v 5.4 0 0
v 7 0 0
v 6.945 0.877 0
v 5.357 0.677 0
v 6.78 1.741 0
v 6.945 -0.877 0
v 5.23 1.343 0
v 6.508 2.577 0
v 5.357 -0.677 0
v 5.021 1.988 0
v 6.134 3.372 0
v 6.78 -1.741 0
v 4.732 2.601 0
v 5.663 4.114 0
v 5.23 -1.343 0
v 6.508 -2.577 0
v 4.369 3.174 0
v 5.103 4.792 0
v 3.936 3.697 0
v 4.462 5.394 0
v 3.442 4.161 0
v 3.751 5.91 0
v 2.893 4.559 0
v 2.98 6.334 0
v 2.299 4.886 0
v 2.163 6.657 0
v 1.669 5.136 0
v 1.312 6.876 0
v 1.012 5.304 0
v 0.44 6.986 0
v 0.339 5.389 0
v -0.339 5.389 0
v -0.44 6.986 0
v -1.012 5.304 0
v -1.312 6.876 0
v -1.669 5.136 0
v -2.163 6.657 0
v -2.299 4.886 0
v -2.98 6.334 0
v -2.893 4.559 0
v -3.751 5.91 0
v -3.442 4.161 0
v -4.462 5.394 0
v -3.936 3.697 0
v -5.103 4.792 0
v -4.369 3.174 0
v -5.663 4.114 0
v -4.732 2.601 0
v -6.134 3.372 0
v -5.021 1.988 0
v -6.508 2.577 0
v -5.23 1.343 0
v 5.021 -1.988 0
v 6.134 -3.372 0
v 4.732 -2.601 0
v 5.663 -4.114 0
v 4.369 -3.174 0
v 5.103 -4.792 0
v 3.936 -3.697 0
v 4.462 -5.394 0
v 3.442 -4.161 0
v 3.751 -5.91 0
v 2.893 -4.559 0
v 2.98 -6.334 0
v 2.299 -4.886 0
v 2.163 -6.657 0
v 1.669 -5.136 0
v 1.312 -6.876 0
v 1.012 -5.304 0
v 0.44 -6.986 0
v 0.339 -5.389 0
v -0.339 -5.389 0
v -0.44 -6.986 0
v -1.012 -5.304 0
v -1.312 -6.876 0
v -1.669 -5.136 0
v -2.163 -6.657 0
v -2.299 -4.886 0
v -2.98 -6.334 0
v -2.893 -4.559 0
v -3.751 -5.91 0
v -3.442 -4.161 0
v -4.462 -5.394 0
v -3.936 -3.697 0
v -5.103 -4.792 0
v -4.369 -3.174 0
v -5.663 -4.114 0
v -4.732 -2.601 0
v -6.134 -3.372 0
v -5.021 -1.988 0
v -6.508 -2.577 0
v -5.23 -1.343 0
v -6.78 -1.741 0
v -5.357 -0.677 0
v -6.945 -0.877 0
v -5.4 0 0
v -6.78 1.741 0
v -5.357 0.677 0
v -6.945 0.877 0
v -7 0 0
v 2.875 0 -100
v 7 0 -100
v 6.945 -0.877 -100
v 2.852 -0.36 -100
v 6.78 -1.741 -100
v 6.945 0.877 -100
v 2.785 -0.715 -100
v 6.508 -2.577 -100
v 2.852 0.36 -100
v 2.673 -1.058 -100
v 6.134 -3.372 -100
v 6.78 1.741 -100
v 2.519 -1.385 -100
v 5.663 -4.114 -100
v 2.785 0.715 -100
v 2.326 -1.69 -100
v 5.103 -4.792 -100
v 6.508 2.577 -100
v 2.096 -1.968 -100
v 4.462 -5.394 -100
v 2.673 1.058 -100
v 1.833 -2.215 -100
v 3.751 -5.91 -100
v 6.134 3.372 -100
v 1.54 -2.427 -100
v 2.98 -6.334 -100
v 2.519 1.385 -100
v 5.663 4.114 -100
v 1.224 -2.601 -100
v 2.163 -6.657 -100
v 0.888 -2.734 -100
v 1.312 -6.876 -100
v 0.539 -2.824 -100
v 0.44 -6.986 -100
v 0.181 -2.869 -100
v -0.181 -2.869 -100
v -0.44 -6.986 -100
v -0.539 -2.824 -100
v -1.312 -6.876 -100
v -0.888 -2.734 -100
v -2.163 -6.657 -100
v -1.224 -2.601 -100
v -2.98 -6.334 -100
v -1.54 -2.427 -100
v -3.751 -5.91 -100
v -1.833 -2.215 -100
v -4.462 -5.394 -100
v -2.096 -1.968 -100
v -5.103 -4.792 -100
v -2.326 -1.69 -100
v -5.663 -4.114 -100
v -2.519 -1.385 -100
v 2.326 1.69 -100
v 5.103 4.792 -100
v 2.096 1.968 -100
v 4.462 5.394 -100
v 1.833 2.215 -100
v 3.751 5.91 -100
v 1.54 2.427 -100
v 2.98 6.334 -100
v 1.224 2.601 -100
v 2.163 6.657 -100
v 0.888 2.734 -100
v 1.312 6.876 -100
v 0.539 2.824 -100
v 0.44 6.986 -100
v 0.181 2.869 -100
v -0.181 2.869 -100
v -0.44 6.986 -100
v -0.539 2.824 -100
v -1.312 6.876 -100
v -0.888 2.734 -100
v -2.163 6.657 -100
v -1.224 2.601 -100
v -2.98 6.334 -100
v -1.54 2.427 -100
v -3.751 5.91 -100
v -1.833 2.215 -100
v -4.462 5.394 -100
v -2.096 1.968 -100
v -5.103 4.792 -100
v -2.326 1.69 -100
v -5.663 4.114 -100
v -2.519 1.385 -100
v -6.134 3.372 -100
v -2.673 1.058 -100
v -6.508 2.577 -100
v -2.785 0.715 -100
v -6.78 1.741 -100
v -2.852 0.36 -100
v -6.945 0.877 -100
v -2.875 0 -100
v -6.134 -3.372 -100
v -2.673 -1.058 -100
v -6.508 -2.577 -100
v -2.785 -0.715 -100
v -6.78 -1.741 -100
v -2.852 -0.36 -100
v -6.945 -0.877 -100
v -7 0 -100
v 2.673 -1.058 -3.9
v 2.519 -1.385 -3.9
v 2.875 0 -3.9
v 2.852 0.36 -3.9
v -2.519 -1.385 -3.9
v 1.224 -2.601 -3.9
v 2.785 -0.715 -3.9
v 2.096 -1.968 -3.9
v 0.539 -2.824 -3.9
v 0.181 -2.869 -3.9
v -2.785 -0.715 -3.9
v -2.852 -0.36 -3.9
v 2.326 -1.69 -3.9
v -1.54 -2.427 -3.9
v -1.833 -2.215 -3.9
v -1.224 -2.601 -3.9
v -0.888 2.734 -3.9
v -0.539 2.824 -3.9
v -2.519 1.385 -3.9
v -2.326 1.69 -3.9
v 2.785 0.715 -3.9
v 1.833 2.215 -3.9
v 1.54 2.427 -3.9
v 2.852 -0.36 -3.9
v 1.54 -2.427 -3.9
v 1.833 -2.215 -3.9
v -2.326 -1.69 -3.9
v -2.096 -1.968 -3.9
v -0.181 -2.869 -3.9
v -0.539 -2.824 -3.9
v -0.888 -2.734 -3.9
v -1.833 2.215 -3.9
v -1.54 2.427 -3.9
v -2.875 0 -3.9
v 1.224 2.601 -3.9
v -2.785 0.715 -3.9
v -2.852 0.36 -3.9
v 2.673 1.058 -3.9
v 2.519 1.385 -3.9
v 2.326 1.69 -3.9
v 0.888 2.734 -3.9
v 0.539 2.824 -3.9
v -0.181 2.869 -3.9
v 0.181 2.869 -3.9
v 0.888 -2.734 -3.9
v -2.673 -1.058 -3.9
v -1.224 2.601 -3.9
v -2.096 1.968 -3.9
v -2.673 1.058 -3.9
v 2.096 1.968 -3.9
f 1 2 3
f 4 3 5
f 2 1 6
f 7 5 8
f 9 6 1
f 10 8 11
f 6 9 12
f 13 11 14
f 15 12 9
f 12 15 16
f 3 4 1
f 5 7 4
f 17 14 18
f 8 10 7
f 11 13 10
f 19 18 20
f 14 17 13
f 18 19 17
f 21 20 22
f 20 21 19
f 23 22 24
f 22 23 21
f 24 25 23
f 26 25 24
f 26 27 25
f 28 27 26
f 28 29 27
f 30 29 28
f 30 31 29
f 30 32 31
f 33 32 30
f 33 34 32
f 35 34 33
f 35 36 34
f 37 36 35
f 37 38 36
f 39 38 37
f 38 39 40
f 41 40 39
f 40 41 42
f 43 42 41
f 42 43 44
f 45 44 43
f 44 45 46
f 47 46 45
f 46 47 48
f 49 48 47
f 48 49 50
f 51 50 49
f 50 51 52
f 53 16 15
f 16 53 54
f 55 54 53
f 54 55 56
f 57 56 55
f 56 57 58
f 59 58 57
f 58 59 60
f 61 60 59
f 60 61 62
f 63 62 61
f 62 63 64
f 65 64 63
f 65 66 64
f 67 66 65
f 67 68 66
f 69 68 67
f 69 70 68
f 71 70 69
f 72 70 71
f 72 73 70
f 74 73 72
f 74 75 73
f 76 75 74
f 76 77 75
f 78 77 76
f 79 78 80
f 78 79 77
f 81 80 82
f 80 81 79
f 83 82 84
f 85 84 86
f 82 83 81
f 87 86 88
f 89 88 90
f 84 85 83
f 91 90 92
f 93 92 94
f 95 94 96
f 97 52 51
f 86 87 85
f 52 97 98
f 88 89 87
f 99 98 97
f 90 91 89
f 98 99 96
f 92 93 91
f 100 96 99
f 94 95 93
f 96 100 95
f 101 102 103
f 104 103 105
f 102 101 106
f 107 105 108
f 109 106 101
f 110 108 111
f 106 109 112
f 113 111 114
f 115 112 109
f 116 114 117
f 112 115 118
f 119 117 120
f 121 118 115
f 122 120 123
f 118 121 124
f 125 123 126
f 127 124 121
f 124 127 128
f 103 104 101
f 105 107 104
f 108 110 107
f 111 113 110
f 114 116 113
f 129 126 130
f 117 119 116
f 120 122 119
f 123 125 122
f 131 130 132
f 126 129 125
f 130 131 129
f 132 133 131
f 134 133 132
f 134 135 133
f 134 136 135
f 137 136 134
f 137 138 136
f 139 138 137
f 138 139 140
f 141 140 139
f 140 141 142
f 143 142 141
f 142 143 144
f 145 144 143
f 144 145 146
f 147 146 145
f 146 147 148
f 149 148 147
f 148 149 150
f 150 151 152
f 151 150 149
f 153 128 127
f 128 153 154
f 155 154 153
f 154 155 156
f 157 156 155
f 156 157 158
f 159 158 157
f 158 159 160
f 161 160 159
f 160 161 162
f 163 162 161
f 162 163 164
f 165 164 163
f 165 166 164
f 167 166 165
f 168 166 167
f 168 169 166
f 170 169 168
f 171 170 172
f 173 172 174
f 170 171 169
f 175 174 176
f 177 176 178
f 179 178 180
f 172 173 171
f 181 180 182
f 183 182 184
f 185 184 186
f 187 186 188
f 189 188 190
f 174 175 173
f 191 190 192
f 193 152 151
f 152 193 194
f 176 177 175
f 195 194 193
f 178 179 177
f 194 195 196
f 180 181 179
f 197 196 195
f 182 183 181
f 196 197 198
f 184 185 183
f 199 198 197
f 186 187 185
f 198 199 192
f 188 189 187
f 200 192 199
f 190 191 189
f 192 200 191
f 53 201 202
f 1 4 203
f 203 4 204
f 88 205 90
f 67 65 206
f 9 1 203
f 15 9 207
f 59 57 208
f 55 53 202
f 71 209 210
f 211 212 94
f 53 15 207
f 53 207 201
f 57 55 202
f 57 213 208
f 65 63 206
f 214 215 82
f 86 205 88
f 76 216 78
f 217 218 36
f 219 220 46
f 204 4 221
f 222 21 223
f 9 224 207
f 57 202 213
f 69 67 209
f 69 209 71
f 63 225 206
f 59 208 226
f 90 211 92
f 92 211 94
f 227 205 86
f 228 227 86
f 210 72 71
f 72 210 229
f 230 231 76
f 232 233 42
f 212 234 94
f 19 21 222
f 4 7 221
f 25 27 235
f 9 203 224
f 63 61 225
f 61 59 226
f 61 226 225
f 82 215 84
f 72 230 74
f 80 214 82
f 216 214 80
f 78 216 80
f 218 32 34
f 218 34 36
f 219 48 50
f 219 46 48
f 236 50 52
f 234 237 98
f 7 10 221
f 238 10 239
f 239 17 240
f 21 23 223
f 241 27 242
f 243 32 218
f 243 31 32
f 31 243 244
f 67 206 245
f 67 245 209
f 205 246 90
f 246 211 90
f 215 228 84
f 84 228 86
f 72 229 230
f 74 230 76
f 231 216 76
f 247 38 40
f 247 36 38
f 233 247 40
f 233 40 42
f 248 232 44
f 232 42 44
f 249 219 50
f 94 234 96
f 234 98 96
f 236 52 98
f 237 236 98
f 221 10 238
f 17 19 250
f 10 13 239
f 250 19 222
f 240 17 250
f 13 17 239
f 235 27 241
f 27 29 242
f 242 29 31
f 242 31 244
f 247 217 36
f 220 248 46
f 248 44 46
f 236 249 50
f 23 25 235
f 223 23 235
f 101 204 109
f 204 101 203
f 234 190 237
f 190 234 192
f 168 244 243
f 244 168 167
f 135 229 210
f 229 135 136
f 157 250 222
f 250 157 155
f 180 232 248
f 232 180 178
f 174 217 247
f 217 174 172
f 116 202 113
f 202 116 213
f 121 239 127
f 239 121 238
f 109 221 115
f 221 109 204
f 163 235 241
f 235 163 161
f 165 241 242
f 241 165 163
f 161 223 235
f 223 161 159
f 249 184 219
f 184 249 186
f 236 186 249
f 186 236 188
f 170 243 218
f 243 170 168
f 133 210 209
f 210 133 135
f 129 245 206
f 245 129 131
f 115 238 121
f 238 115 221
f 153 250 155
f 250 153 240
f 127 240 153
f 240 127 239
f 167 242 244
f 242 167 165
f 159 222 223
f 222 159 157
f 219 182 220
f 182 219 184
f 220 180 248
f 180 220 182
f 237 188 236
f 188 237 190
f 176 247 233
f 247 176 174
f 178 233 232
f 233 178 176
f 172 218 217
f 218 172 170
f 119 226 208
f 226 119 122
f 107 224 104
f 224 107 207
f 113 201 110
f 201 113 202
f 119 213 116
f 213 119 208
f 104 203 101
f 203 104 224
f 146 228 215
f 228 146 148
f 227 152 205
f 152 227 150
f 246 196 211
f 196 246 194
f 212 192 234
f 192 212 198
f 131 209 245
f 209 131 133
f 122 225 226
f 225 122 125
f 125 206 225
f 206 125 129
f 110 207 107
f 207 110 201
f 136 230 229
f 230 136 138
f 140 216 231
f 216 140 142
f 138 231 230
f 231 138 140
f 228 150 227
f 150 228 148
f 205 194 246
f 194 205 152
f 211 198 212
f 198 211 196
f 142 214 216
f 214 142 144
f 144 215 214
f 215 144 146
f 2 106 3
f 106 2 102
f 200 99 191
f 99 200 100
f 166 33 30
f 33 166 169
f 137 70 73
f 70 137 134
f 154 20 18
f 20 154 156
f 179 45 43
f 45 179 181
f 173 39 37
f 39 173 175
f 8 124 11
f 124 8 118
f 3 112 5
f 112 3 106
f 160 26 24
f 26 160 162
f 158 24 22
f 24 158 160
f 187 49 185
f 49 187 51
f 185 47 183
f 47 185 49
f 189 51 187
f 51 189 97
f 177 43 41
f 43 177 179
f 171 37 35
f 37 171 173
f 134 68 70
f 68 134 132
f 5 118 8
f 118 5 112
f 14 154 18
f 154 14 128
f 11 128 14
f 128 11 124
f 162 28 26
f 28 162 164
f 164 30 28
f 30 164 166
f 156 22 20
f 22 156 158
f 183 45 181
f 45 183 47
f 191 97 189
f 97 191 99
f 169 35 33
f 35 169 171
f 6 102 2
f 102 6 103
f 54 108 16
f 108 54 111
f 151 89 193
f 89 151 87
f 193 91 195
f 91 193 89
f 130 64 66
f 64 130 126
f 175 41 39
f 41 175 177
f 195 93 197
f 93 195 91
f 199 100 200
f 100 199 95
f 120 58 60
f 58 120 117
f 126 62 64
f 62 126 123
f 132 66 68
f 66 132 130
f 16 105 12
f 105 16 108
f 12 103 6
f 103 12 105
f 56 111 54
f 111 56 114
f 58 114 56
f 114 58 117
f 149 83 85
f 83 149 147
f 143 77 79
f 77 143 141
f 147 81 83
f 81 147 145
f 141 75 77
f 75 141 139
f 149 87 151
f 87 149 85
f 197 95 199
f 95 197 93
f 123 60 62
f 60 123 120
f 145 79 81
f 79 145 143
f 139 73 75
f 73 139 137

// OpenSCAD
$fn = 50;


difference() {
	union() {
		translate(v = [0, 0, -100.0000000000]) {
			cylinder(h = 100, r = 7.0000000000);
		}
	}
	union() {
		translate(v = [0, 0, 0]) {
			rotate(a = [0, 0, 0]) {
				difference() {
					union() {
						#translate(v = [0, 0, -100.0000000000]) {
							cylinder(h = 100, r = 2.6000000000);
						}
						#translate(v = [0, 0, -3.9000000000]) {
							cylinder(h = 3.9000000000, r1 = 2.8750000000, r2 = 5.4000000000);
						}
						#translate(v = [0, 0, -100.0000000000]) {
							cylinder(h = 100, r = 2.8750000000);
						}
						#translate(v = [0, 0, -100.0000000000]) {
							cylinder(h = 100, r = 2.6000000000);
						}
					}
					union();
				}
			}
		}
	}
}
